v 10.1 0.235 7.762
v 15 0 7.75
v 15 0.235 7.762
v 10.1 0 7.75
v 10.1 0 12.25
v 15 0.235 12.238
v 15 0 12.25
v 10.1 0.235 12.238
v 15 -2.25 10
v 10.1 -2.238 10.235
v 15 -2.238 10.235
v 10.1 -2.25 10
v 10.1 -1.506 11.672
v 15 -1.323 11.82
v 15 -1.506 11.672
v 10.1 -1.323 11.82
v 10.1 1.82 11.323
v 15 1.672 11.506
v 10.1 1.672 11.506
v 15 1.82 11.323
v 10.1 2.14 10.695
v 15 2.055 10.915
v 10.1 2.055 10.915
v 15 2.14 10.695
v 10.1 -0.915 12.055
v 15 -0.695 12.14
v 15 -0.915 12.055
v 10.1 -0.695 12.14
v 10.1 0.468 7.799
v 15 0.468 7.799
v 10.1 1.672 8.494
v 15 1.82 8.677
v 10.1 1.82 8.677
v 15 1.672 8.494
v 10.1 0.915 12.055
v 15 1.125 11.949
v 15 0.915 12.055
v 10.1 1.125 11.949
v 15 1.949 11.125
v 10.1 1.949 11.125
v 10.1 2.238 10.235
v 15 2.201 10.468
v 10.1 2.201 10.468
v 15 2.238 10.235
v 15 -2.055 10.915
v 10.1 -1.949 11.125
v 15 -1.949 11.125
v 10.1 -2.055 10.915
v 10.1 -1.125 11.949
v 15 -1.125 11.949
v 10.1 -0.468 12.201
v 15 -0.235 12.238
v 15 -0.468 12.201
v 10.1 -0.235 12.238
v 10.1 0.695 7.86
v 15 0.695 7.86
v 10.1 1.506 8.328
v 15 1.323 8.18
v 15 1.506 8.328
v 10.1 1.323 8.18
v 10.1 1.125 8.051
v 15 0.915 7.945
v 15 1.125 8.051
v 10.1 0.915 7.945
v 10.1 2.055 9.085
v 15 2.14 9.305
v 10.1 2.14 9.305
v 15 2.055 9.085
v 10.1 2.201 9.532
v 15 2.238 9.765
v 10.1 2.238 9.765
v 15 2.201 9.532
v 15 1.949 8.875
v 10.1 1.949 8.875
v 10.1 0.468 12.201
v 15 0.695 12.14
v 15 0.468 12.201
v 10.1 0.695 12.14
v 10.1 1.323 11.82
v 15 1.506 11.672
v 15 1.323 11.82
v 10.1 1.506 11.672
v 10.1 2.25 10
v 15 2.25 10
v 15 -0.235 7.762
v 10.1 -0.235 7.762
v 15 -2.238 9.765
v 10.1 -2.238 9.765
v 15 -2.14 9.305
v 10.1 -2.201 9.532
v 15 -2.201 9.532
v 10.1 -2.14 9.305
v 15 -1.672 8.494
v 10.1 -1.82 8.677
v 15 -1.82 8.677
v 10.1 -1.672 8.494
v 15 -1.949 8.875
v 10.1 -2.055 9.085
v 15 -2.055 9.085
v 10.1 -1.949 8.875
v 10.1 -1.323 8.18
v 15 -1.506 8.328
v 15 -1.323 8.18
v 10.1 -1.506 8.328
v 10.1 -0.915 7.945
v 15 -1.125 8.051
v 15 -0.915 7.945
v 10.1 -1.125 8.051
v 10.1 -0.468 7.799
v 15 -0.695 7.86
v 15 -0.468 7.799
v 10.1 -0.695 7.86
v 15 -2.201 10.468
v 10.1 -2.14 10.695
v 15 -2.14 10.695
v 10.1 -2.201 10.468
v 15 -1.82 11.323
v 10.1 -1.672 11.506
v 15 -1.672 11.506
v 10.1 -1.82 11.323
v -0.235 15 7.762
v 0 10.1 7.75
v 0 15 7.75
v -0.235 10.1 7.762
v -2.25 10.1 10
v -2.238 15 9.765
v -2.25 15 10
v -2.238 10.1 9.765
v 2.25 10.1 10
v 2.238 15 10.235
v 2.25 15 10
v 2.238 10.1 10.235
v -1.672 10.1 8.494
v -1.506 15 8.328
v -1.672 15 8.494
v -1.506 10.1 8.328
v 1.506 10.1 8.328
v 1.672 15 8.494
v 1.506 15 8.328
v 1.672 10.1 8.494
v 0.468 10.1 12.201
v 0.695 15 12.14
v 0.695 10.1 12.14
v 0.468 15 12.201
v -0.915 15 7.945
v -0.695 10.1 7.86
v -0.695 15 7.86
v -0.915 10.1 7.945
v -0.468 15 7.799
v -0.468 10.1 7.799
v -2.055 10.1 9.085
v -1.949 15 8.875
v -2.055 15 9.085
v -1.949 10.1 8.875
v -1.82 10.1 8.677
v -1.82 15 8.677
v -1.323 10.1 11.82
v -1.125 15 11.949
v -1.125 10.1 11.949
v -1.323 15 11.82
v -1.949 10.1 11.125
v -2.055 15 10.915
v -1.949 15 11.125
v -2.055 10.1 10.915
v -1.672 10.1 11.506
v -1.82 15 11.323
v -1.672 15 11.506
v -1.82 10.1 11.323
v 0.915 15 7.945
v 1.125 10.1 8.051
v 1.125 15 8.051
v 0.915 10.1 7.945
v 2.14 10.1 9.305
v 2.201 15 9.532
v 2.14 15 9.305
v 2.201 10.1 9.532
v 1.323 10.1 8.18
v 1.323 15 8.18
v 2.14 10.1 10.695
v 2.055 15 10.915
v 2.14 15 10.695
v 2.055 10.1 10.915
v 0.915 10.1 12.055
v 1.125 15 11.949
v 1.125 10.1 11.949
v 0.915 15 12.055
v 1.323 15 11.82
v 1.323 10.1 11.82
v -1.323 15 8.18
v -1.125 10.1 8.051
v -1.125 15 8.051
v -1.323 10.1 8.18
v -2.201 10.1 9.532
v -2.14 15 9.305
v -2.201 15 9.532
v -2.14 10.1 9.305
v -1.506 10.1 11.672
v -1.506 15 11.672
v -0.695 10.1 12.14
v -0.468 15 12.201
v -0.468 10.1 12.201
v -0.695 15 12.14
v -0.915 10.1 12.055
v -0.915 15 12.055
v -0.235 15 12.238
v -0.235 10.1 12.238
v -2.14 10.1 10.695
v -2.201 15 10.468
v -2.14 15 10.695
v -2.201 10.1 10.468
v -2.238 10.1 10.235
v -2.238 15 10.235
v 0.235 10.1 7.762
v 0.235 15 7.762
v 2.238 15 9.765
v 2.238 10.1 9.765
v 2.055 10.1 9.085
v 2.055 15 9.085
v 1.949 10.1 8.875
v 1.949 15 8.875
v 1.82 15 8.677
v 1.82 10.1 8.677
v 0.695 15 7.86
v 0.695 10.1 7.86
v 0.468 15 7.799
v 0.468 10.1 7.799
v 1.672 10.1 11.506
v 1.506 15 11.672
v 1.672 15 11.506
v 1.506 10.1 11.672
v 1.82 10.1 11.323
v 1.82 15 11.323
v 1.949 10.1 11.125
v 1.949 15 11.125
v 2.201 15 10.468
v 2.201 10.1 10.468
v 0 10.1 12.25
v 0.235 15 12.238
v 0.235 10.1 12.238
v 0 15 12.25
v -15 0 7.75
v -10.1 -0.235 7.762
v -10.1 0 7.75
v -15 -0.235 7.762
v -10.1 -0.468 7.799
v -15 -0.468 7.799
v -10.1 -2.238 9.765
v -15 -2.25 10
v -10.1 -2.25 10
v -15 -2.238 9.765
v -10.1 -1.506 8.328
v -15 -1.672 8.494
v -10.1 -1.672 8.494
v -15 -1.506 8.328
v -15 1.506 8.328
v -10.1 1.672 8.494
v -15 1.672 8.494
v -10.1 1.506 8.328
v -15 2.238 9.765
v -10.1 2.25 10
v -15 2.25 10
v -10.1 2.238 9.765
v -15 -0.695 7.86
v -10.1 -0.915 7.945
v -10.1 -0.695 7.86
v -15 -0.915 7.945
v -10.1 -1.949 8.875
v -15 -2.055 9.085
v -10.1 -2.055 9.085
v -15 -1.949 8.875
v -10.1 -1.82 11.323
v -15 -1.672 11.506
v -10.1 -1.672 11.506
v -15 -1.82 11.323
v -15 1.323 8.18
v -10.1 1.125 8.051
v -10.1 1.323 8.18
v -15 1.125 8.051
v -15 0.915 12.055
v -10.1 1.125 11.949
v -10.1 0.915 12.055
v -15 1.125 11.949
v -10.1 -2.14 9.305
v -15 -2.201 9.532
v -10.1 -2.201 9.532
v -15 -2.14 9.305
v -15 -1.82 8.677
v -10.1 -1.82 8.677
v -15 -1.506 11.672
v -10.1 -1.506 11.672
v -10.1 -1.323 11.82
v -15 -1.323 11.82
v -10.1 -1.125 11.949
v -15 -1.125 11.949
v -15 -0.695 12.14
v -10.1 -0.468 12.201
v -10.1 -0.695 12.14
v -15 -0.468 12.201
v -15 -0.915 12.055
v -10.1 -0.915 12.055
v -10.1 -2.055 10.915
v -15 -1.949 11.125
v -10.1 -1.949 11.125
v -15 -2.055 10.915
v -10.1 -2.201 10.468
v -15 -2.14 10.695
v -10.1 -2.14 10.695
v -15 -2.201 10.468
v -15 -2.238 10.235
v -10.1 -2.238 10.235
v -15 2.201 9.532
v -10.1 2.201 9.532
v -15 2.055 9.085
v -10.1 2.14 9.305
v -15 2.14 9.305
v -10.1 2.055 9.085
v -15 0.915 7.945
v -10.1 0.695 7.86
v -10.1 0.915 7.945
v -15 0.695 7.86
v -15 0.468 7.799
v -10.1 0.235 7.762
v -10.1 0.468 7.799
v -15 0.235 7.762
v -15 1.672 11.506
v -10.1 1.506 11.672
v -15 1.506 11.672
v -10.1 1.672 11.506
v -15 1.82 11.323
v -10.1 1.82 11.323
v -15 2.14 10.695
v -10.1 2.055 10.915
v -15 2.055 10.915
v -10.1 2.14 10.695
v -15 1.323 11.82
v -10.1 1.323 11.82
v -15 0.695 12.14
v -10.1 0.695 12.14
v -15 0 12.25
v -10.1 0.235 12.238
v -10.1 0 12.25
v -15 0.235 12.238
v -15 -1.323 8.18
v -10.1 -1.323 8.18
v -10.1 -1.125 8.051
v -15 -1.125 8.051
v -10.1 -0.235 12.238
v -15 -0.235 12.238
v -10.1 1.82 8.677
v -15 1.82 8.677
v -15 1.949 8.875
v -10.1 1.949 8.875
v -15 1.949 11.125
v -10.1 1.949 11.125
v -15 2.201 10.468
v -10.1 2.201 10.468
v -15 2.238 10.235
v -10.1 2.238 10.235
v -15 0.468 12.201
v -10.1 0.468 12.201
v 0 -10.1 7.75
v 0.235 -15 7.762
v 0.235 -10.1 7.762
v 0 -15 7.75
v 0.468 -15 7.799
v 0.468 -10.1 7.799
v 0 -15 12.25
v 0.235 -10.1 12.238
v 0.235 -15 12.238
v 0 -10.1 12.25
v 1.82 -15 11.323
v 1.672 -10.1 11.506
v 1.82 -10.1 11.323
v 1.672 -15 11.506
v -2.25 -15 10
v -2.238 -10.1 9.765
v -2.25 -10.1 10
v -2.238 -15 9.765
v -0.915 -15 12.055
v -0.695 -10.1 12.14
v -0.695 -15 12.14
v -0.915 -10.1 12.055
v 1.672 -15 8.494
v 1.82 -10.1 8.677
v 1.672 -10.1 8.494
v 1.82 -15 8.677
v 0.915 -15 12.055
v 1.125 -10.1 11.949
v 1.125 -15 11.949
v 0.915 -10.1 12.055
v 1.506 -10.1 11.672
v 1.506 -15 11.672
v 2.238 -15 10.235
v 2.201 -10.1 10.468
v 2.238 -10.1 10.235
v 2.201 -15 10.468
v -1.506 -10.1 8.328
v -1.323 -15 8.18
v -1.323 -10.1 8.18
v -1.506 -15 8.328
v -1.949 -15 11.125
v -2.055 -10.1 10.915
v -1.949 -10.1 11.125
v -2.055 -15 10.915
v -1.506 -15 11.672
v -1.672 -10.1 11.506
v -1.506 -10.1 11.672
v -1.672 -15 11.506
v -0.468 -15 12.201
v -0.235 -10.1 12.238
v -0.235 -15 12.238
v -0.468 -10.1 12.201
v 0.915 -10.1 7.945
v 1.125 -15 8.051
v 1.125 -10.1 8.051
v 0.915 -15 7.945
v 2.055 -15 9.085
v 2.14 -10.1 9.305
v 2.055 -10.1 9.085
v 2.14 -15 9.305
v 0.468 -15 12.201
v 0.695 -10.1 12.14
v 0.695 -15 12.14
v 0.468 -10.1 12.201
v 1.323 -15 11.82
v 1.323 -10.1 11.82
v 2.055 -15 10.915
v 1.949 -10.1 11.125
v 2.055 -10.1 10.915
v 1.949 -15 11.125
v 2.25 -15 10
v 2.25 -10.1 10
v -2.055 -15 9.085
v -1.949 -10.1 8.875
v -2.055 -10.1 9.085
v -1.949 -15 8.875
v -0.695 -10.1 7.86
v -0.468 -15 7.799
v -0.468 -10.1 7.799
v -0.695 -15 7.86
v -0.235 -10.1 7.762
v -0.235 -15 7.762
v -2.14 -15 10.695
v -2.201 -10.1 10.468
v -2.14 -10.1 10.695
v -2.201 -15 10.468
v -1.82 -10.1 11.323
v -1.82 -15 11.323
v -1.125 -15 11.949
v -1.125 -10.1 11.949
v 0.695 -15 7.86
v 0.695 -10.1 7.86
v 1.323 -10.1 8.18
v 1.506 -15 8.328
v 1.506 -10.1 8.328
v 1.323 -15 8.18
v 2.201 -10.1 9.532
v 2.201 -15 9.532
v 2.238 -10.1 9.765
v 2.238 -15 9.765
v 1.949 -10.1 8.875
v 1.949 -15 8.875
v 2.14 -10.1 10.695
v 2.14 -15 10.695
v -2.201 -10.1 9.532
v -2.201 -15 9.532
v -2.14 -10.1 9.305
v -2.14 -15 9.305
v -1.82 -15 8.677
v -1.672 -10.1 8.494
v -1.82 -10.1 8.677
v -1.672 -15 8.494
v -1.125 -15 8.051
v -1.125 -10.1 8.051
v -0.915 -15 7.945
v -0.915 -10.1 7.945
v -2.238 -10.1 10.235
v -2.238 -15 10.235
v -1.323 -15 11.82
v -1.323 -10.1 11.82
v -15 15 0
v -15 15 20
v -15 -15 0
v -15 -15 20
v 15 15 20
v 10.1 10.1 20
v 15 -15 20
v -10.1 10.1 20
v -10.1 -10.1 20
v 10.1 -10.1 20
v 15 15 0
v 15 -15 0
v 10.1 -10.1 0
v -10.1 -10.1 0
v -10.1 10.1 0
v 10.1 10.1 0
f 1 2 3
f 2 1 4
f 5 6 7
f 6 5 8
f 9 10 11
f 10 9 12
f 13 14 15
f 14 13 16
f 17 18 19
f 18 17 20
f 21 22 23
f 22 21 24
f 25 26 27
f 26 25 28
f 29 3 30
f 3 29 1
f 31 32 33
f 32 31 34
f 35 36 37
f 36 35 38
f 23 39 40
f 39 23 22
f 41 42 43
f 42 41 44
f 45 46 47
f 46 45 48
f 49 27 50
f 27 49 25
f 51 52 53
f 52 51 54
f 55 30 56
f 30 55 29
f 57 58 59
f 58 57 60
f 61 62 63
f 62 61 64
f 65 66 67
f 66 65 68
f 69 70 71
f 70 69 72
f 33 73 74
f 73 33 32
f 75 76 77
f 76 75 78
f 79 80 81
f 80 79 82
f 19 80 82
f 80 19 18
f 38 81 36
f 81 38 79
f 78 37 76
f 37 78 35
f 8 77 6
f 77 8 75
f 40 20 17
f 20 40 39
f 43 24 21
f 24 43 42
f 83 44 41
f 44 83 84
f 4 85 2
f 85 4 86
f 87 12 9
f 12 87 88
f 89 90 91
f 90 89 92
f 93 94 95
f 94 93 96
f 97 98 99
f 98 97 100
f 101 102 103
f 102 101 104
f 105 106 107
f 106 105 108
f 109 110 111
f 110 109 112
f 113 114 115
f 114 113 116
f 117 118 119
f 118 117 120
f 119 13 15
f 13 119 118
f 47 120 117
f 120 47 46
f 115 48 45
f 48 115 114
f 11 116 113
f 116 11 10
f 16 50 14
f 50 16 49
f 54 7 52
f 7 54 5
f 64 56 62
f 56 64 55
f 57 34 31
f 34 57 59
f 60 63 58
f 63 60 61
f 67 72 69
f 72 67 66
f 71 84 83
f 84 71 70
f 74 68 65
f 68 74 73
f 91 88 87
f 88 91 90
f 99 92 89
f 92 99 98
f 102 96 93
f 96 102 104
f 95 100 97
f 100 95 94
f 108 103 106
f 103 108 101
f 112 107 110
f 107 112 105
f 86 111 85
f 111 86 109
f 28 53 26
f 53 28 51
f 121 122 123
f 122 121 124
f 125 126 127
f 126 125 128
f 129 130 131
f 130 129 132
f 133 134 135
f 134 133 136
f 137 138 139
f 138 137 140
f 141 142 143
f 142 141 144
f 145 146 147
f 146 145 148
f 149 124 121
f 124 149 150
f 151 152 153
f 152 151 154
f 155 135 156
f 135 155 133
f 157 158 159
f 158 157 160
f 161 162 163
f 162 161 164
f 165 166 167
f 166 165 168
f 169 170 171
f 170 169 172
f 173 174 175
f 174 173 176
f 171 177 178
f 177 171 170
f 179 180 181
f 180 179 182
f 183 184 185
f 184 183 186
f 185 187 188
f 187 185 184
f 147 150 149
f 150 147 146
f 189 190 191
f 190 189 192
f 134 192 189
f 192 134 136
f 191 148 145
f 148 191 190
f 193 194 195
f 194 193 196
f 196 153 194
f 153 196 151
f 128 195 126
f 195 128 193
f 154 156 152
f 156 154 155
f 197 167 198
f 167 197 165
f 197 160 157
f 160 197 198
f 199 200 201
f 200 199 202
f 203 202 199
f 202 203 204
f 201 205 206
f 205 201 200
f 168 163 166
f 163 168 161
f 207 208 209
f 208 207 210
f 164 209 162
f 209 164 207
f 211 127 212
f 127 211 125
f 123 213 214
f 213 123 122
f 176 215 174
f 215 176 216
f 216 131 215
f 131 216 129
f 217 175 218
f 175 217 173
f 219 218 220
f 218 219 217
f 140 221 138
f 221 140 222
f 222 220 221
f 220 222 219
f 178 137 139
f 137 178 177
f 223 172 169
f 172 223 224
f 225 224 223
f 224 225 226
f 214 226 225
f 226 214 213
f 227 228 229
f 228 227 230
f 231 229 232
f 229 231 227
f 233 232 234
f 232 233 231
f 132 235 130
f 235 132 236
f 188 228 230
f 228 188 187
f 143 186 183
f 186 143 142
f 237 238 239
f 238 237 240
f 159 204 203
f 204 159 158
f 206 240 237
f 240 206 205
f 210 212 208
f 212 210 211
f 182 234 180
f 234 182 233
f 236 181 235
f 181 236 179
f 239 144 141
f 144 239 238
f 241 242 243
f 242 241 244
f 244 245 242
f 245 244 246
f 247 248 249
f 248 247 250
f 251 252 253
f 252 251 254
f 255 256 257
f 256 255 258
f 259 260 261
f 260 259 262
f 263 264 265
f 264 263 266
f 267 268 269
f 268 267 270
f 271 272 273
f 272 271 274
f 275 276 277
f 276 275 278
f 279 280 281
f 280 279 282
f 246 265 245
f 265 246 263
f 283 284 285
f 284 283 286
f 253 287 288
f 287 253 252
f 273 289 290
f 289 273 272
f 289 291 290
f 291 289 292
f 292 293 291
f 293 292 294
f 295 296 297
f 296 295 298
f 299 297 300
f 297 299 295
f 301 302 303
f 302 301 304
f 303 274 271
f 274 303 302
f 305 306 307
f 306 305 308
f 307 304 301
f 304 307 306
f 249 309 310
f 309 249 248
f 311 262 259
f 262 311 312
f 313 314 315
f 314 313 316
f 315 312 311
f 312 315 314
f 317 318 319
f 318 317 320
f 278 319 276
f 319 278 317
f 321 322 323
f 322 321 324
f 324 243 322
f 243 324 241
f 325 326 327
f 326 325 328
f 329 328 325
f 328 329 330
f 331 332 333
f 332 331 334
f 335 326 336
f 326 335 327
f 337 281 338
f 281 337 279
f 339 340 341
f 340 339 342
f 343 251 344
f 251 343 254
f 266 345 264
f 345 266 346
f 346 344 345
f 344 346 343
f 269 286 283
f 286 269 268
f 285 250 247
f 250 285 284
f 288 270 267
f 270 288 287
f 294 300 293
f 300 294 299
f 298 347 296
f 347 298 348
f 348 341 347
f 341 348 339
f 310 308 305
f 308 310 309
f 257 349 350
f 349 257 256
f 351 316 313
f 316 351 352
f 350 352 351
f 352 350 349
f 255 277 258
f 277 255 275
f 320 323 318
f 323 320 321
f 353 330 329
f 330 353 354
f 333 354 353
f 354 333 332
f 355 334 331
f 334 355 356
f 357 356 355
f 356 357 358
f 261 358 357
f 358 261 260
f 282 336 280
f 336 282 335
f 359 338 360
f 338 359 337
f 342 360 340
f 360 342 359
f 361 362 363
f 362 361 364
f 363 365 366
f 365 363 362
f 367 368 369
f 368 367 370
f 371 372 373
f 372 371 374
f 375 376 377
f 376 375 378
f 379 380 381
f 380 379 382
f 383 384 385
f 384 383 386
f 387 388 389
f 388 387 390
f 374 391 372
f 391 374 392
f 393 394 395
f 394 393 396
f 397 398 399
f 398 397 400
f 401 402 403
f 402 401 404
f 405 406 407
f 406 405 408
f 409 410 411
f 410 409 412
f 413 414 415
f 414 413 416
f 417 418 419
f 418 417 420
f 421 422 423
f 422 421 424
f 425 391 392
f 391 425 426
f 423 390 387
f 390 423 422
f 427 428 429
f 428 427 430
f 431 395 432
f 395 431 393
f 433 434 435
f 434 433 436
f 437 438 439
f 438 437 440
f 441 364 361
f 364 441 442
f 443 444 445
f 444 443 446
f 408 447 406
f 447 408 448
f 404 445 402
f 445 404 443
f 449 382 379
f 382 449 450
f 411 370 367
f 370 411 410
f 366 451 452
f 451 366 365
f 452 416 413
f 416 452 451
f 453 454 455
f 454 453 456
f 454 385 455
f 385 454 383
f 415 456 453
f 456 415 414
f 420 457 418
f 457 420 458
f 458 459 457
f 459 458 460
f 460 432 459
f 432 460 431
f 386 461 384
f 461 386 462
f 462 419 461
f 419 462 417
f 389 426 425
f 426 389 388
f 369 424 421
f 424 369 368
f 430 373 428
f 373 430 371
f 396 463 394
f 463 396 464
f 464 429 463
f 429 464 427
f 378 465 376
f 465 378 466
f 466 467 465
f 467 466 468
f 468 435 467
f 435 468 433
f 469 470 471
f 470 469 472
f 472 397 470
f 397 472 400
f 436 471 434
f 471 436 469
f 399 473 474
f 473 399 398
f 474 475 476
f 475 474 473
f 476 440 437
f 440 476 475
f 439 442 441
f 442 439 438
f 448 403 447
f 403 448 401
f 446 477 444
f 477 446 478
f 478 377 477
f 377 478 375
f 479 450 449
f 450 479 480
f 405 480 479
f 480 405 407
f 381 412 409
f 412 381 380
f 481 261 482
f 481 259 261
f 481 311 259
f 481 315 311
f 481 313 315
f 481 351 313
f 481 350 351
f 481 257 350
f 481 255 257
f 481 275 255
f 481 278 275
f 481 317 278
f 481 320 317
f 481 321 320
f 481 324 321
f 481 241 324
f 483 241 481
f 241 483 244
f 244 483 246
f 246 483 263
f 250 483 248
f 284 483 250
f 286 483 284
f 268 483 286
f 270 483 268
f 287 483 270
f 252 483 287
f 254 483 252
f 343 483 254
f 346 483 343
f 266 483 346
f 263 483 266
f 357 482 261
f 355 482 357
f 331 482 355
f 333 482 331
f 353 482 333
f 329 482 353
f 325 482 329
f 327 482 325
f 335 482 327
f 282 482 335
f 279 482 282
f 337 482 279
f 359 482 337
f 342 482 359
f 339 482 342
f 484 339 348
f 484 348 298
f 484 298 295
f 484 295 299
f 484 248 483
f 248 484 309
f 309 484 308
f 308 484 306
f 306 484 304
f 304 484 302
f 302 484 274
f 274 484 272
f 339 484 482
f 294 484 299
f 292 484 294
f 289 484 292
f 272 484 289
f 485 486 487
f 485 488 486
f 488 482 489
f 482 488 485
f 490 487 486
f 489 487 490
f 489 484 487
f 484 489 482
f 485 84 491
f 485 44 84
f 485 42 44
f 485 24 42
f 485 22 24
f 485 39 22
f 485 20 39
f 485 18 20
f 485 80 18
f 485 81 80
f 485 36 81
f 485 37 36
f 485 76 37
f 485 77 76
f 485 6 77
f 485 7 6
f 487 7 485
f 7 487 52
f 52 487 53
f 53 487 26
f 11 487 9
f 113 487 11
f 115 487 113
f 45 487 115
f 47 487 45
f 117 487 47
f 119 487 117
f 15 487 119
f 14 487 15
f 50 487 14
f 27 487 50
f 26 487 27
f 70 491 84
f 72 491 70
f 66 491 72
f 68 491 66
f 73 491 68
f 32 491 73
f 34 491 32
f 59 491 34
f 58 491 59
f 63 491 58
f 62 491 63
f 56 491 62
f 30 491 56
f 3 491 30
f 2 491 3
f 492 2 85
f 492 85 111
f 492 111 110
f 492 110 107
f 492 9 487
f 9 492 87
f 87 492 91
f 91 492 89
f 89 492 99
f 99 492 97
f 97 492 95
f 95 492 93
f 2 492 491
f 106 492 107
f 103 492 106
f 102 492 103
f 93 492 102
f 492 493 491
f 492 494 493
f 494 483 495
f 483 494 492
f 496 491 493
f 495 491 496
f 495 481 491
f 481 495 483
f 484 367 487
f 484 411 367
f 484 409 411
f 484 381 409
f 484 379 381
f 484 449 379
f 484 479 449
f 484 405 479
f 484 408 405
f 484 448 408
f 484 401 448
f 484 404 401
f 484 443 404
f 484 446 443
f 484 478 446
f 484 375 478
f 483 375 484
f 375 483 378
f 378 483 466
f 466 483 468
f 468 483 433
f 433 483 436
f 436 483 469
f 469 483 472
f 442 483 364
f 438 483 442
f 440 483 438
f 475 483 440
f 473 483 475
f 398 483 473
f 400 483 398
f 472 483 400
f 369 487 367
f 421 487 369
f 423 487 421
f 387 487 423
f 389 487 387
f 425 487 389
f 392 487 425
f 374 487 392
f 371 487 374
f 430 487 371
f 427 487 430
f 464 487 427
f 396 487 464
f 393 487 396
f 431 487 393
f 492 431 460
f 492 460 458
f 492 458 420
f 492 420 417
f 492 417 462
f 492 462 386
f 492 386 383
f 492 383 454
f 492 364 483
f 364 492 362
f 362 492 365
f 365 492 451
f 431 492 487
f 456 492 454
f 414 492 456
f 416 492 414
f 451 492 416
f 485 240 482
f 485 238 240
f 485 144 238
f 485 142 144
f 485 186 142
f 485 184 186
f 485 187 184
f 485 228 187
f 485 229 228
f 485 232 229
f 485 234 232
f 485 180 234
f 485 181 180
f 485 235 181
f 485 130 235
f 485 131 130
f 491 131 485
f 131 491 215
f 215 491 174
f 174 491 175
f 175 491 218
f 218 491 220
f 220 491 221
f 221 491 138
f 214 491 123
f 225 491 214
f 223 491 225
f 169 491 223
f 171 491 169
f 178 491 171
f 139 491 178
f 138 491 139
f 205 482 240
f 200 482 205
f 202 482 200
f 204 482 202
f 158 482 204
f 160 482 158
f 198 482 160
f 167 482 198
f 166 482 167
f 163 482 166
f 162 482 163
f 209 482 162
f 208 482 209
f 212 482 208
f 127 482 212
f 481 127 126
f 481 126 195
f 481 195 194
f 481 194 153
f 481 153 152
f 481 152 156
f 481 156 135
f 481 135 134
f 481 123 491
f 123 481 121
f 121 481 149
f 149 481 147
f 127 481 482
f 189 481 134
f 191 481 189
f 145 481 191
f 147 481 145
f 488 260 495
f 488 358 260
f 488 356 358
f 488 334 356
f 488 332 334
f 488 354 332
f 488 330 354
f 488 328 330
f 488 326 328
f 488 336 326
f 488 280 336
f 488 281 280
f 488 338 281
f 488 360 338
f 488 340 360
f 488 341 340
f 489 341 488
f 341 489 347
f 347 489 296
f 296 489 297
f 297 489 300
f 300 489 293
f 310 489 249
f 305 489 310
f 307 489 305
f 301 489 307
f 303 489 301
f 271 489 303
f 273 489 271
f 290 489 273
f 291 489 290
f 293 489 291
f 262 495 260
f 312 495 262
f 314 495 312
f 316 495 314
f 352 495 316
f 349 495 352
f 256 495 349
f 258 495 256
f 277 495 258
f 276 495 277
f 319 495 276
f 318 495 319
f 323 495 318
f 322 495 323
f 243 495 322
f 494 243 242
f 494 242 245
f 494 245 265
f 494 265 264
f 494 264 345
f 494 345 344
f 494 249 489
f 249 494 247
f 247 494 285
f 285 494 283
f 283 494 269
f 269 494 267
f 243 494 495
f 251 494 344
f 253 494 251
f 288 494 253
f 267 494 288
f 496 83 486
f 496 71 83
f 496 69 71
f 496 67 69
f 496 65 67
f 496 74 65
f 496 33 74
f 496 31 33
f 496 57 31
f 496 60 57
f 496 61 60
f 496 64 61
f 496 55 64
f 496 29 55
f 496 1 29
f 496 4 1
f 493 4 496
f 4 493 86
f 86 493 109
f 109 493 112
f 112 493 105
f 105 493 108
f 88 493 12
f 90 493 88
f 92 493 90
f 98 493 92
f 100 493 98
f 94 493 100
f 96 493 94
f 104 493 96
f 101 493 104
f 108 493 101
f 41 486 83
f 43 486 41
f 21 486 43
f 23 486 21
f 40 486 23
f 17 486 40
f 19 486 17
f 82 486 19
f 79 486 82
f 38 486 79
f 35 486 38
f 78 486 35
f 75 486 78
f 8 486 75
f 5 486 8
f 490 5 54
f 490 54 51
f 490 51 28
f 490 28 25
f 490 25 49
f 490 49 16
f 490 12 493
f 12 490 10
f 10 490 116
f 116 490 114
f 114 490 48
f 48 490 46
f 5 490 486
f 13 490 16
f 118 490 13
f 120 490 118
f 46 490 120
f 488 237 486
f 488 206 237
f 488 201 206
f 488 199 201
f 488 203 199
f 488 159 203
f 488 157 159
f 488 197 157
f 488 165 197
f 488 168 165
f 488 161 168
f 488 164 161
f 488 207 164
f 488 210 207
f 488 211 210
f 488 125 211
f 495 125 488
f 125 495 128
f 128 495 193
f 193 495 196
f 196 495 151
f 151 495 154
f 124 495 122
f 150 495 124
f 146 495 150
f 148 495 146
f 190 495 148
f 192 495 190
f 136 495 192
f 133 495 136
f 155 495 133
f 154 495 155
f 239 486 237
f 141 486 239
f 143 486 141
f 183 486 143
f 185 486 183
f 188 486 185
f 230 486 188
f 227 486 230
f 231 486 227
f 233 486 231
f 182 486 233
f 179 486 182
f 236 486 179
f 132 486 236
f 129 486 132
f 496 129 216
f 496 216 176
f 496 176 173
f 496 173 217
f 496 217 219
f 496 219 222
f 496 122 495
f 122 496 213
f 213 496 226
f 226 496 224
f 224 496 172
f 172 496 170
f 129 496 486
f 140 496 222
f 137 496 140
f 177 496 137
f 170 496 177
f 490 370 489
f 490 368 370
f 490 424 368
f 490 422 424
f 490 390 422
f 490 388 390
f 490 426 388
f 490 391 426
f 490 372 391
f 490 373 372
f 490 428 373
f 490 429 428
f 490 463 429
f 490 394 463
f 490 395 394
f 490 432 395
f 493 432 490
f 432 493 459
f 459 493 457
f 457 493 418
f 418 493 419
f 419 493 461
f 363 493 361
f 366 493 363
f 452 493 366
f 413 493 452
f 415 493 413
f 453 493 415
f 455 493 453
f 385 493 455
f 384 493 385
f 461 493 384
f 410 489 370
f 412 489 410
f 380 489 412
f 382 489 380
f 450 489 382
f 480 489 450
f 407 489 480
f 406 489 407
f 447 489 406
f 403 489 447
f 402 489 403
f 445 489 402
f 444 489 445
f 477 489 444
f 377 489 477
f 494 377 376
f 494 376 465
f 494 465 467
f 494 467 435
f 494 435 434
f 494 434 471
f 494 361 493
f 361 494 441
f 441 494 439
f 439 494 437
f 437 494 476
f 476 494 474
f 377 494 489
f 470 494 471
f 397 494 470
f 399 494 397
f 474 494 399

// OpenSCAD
// file: _params.scad
// =========================================================================
// 공유 파라미터 (모든 개별 부품 파일에서 include)
// 메인 어셈블리: cup_z_x_catrage_frame_water_mic_anti_3030.scad 에서 추출
// 프레임: 600 × 420 × 700mm (3030 프로파일, Y=0 대칭)
// =========================================================================

$fn = 60;  // 부품 출력용 고해상도
GLOBAL_TOLERANCE = 0.2;

// --- [1] 하부 기성품 및 원통 파라미터 ---
X_RAIL_LEN = 290.0;
X_BLOCK_W = 30.0; X_BLOCK_L = 32.0;   // 신규 X슬라이더 블록 (폭 30mm × 길이 32mm)
X_PITCH_X = 20.0; X_PITCH_Y = 20.0;   // 체결 홀 피치 (20 × 20mm, M3 나사탭 4개)
X_RAIL_W = 30.0;  X_RAIL_H = 20.0;   // 레일 폭 30mm (레일 바닥~블록 윗면 높이 29mm 반영)
X_TOTAL_H = 29.0;                    // 레일 바닥에서 슬라이더 블록 윗면까지의 높이

MOTOR_W = 42.0;      MOTOR_PITCH = 31.0; MOTOR_HOLE_D = 3.5;    
MOTOR_BOSS_D = 22.0; MOTOR_BOSS_H = 2.0; SCREW_D = 8.0;         
MOT_BODY_L = 41.0;   SHAFT_L = 24.0;     // 실측 NEMA17 몸통 41mm / 축 돌출 24mm

CUP_ID = 99.5;  CUP_WALL = 5.0; CUP_OD = 110.0;     // 아크릴 원통 OD110/ID100
CUP_H = 180.0;   CAGE_H = 60.0;  FLOOR_H = 10.0; PISTON_H = 20.0;     

LIP_D = 30.0;    LIP_H = 5.0;    LEAK_DRAIN_D = 4.0;    
GUIDE_PIPE_D = 8.0; BUSHING_OD = 12.0; BUSHING_H = 8.0;       
DRAIN_RADIUS = 35.0; DRAIN_D = 8.0;        

Y_OFFSET = 85.0; BRKT_H = 12.0; BRKT_D = 122.0; BRKT_ID = 62.0; Z_MOUNT_PCD = 86.0;   

// --- [2] 아크릴 파이프 및 상부 카트리지 ---
ACRYL_ID = 100.0; ACRYL_T = 5.0; ACRYL_OD = ACRYL_ID + (ACRYL_T * 2);  // OD110 (아크릴집 106 재고없음 → 컵과 동일 규격)

REVOLVER_PCD = 240.0;     // 인접 카트리지 웹 9.8mm 확보 (OD110 대응, 230→240)
CARTRIDGE_OD = REVOLVER_PCD + ACRYL_OD + 8; 
TOP_PLATE_H = 15.0;       // 아크릴 15T 통판 (보스홀 단 깊이 10mm)

HUB_D = 60.0;            
SHAFT_D = 12.0;          
HUB_WALL = 4.0;          
HUB_H = 15.0;             // 아크릴 5T × 3장 적층 — 파이프 130mm 대응
POCKET_DEPTH = 5.0;
MID_HUB_Z = 63.5;          // 중단 허브 하면 Z (벨트 중심 Z=71.0mm 정렬, 풀리 상단 Z=75.0mm = 축상단-1mm)
UPPER_HUB_Z = 135.0;       // 상단 허브 하면 Z (전체 135+15=150 유지)
BOSS_OD = 35.0;
BOSS_H = 11.0;             // 보스11 + 와셔1 = 12, 리세스10 → 허브 2mm 공중

// --- [3] GT2 벨트 구동 시스템 ---
GT2_PITCH     = 2.0;
GT2_BELT_W    = 6.0;
BIG_PULLEY_TEETH = 566;
BIG_PULLEY_PD = BIG_PULLEY_TEETH * GT2_PITCH / PI;
BIG_PULLEY_OD = BIG_PULLEY_PD + 1.0;
SMALL_PULLEY_TEETH = 20;
SMALL_PULLEY_PD = SMALL_PULLEY_TEETH * GT2_PITCH / PI;
SMALL_PULLEY_OD = SMALL_PULLEY_PD + 1.0;

BELT_MOTOR_X = -300;
BELT_MOTOR_Y = -155.5;
BRKT_MOTOR_H = 25.0;
BRKT_MOTOR_W = 45.0;        // 브래킷 폭 45mm (프로파일 간섭 회피 복원)
SLOT_LEN = 10.0;
FLAG_W = 15.0;  FLAG_H = 8.0;  FLAG_T = 1.5;

X_POS_MEASURE = 170.0;   // 측정 브래킷 X좌표 (X_M~X_R 정중앙, X대칭)

// --- [4] 3030 프레임 경계 (600×430×700mm) ---
PF = 30;             // 3030 알루미늄 프로파일
WASHER_T = 1.0;     

X_L = -320;
X_M = 60;
X_R = 250;
Y_F = -210;          // 전방 (대칭: -210+30=-180, Y=0 중심)
Y_B = 180;           // 후방 (대칭: 180+30=210, Y=0 중심) — 메인파일과 동기화

Z_BOT = -480;
Z_RAIL = -322;
Z_MID = -TOP_PLATE_H - PF;
Z_TOP = 220;

SUPPORT_PILLAR_H = Z_TOP - PF;

SHAFT_SQ = 20;       // 2020 사각 회전축

// 사각 축 홀 크기
SQ = SHAFT_SQ + GLOBAL_TOLERANCE;  // 20.2mm

// --- 리볼버/컵 축 정렬 (보스홀=판 중심에 리볼버 정렬) ---
REVOLVER_CX = (X_L + X_M + PF)/2;        // 판 중심 = 보스홀 = 리볼버 회전축 (-115)
DROP_X      = REVOLVER_CX + REVOLVER_PCD/2;  // 링 드롭 / 컵 적재 축 (+5)

FLANGE_Z = 52.0;       // 모터 전면 안착 높이 (Z=52mm -> 축 상단 Z=76mm, 풀리 결합)

// --- [5] 모터 체결홀 (이미 제작 완료된 15T 상판 원본 도면 수치 100% 유지) ---
MOTOR_BOLT_PITCH     = 25.0;      // Y피치 (Y = ±12.5mm)
MOTOR_BOLT_X_NOMINAL = X_L + 55;  // 1열: 상판 좌단 55 (모터축 기준 +35mm = X=-265mm)
MOTOR_BOLT_X_SHIFT   = X_L + 40;  // 2열: 상판 좌단 40 (모터축 기준 +20mm = X=-280mm)

// 모터 마운트 볼트 카운터보어 (단볼트용 — 브래킷 두께 25 중 깊게 파냄)
MOTOR_CB_D     = 6.5;            // M3 캡볼트 머리 클리어런스
MOTOR_CB_DEPTH = 19;             // 카운터보어 깊이 (잔여 통과 6mm → M3×10 단볼트)
// main file
// =========================================================================
// [부품] 축 클램프 보스 (Shaft Clamp Boss) - 중단/상단 공용
// 가공: 3D 프린팅 (PLA) × 2개
// 원점: 보스 하면 = Z=0, 축 중심 = XY 원점
// =========================================================================
include <_params.scad>

difference() {
    translate([-15, -15, 0]) cube([30, 30, 20]);
    // 사각 축 관통
    translate([-SQ/2, -SQ/2, -1]) cube([SQ, SQ, 22]);
    // M4 관통홀 4방향 (프로파일 T슬롯 이너너트 체결)
    for(ang = [0, 90, 180, 270])
        rotate([0, 0, ang]) translate([0, 0, 10])
            rotate([0, 90, 0]) translate([0, 0, SQ/2 - 1])
                cylinder(d=4.5, h=16);
}
